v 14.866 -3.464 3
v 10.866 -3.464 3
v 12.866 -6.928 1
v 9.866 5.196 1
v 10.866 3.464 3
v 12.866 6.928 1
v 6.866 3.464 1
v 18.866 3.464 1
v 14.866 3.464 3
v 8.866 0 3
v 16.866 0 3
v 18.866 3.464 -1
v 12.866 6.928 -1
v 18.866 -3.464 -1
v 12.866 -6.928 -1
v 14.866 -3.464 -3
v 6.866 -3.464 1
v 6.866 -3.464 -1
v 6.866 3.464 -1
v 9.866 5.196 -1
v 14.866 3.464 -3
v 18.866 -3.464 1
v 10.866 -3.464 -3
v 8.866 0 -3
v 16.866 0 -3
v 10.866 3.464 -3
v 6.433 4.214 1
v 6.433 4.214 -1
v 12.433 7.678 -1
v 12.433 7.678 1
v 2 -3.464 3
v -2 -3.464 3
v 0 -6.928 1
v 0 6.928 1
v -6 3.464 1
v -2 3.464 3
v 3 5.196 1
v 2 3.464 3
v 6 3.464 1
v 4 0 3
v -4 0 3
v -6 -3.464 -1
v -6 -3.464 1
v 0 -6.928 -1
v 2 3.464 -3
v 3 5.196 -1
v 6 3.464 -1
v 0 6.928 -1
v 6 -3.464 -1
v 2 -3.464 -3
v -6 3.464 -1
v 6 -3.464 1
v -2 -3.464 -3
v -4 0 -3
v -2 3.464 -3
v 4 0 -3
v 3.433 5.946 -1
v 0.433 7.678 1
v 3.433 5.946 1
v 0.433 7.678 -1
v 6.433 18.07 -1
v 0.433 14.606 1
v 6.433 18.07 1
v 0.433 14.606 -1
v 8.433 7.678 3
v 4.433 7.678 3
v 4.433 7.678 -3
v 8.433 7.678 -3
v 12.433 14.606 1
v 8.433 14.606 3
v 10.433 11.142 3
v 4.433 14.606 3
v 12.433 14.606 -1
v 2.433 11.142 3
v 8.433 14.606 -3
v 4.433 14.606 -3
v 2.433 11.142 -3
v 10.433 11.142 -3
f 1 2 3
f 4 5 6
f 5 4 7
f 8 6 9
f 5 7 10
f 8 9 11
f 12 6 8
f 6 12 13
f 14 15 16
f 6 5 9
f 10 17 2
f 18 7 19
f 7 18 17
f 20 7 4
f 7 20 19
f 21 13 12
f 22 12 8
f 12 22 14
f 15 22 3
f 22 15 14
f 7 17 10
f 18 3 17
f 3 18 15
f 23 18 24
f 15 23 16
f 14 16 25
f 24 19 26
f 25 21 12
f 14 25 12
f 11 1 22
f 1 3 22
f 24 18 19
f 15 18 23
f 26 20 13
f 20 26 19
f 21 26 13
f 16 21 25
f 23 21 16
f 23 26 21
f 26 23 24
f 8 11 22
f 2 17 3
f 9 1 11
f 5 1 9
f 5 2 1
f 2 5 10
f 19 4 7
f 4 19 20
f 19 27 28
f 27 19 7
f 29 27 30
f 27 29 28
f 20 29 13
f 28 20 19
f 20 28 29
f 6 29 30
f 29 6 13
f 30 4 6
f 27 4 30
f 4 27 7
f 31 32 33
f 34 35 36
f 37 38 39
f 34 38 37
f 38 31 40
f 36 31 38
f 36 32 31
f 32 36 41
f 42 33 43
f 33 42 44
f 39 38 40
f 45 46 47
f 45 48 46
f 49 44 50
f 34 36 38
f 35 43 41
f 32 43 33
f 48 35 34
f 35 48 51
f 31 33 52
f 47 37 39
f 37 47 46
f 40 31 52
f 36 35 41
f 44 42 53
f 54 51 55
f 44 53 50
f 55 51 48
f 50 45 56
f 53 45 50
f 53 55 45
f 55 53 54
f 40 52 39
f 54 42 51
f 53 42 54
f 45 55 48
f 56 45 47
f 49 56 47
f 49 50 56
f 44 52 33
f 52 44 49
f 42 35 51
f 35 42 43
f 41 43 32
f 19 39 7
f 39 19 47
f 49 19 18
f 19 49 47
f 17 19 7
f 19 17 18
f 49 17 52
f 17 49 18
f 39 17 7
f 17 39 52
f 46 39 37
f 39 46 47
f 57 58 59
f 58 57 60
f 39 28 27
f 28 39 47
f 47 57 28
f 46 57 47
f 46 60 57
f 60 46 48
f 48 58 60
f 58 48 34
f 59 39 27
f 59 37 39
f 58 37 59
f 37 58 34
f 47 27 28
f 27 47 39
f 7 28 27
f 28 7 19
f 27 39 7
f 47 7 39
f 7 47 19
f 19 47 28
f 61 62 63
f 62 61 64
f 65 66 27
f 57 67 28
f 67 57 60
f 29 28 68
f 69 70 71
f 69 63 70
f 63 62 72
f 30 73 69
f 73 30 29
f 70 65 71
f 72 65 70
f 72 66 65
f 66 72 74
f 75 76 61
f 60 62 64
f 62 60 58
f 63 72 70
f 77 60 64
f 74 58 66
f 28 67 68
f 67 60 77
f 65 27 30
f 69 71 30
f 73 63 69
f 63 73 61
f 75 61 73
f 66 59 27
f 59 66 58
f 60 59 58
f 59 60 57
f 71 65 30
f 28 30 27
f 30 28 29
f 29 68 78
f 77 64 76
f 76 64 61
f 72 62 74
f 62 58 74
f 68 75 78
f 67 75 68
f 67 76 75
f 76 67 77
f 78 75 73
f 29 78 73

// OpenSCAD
// file: gem-common.scad
angles = [for(i = [0:5]) i * (360 / 6)];

inner_poly_radius=8 * cos(60);
outer_poly_radius=8 * cos(30);
outer_poly_z=1;
inner_poly_z=3;


gap_between_gems = cos(30);
distance_to_corner = cos(30) * outer_poly_radius * 2 + gap_between_gems;


module edge_connector(angle = 0) {
    function make_point_2d(r, angle, height) = [r * sin(angle), height];
    
    points = [
        make_point_2d(outer_poly_radius, 30, outer_poly_z),
        make_point_2d(outer_poly_radius, -30, outer_poly_z),
        make_point_2d(outer_poly_radius, -30, -outer_poly_z),
        make_point_2d(outer_poly_radius, 30, -outer_poly_z),
    ];
    
    rotate([0,0,angle]) {
        translate([(distance_to_corner - gap_between_gems) / 2,0,0]){
            rotate([90, 0, 90]) {
                linear_extrude(gap_between_gems) {
                    polygon(points);
                }
            }
        }
    }
}

module move(distance, angle) {
    translate([distance * cos(angle), distance * sin(angle), 0]) {
        children();
    }
}


module corner_connector(angle=0) {
    r = 0.5;
    rotate_angle = angle + 30;
    move(outer_poly_radius + r, rotate_angle) {
        translate([0,0, -outer_poly_z]) {
            rotate([0,0,-rotate_angle]) {
                cylinder($fn=3, r=r, h=outer_poly_z * 2);
            }
        }
    }
}

module gem() {
    function make_point(r, angle, height) = [r * cos(angle), r * sin(angle), height];
    
    top_poly = [for(th = angles) make_point(inner_poly_radius, th, inner_poly_z)];
    top_outer_poly = [for(th = angles) make_point(outer_poly_radius, th + 30, outer_poly_z)];
    bottom_outer_poly = [for(th = angles) make_point(outer_poly_radius, th + 30, -outer_poly_z)];
    bottom_poly = [for(th = angles) make_point(inner_poly_radius, th, -inner_poly_z)];
 
    function rot(n, base) = (n + 1 - base) % 6 + base;
    
    faces = [
        [5, 4, 3, 2, 1, 0],
        for(i = [0:5]) [i, (i + 1) % 6, i + 6],
        for(i = [6:11]) [i, (i - 5) % 6, rot(i, 6)],
        for(i = [6:11]) [i, rot(i, 6), rot(i, 6) + 6, i + 6],
        for(i = [12:17]) [i, rot(i, 12), rot(i, 12) + 6],
        for(i = [18:23]) [i, i-6, rot(i, 18)],
        [18, 19, 20, 21, 22, 23],
    ];
    
    polyhedron(
        concat(
            top_poly,
            top_outer_poly,
            bottom_outer_poly,
            bottom_poly
        ),
        faces
    );
}
// main file
include <./gem-common.scad>

gem();
edge_connector();
edge_connector(60);
corner_connector();
move(distance_to_corner, 0) {
    gem();
    edge_connector(120);
}
move(distance_to_corner, 60) {
    gem();
}
